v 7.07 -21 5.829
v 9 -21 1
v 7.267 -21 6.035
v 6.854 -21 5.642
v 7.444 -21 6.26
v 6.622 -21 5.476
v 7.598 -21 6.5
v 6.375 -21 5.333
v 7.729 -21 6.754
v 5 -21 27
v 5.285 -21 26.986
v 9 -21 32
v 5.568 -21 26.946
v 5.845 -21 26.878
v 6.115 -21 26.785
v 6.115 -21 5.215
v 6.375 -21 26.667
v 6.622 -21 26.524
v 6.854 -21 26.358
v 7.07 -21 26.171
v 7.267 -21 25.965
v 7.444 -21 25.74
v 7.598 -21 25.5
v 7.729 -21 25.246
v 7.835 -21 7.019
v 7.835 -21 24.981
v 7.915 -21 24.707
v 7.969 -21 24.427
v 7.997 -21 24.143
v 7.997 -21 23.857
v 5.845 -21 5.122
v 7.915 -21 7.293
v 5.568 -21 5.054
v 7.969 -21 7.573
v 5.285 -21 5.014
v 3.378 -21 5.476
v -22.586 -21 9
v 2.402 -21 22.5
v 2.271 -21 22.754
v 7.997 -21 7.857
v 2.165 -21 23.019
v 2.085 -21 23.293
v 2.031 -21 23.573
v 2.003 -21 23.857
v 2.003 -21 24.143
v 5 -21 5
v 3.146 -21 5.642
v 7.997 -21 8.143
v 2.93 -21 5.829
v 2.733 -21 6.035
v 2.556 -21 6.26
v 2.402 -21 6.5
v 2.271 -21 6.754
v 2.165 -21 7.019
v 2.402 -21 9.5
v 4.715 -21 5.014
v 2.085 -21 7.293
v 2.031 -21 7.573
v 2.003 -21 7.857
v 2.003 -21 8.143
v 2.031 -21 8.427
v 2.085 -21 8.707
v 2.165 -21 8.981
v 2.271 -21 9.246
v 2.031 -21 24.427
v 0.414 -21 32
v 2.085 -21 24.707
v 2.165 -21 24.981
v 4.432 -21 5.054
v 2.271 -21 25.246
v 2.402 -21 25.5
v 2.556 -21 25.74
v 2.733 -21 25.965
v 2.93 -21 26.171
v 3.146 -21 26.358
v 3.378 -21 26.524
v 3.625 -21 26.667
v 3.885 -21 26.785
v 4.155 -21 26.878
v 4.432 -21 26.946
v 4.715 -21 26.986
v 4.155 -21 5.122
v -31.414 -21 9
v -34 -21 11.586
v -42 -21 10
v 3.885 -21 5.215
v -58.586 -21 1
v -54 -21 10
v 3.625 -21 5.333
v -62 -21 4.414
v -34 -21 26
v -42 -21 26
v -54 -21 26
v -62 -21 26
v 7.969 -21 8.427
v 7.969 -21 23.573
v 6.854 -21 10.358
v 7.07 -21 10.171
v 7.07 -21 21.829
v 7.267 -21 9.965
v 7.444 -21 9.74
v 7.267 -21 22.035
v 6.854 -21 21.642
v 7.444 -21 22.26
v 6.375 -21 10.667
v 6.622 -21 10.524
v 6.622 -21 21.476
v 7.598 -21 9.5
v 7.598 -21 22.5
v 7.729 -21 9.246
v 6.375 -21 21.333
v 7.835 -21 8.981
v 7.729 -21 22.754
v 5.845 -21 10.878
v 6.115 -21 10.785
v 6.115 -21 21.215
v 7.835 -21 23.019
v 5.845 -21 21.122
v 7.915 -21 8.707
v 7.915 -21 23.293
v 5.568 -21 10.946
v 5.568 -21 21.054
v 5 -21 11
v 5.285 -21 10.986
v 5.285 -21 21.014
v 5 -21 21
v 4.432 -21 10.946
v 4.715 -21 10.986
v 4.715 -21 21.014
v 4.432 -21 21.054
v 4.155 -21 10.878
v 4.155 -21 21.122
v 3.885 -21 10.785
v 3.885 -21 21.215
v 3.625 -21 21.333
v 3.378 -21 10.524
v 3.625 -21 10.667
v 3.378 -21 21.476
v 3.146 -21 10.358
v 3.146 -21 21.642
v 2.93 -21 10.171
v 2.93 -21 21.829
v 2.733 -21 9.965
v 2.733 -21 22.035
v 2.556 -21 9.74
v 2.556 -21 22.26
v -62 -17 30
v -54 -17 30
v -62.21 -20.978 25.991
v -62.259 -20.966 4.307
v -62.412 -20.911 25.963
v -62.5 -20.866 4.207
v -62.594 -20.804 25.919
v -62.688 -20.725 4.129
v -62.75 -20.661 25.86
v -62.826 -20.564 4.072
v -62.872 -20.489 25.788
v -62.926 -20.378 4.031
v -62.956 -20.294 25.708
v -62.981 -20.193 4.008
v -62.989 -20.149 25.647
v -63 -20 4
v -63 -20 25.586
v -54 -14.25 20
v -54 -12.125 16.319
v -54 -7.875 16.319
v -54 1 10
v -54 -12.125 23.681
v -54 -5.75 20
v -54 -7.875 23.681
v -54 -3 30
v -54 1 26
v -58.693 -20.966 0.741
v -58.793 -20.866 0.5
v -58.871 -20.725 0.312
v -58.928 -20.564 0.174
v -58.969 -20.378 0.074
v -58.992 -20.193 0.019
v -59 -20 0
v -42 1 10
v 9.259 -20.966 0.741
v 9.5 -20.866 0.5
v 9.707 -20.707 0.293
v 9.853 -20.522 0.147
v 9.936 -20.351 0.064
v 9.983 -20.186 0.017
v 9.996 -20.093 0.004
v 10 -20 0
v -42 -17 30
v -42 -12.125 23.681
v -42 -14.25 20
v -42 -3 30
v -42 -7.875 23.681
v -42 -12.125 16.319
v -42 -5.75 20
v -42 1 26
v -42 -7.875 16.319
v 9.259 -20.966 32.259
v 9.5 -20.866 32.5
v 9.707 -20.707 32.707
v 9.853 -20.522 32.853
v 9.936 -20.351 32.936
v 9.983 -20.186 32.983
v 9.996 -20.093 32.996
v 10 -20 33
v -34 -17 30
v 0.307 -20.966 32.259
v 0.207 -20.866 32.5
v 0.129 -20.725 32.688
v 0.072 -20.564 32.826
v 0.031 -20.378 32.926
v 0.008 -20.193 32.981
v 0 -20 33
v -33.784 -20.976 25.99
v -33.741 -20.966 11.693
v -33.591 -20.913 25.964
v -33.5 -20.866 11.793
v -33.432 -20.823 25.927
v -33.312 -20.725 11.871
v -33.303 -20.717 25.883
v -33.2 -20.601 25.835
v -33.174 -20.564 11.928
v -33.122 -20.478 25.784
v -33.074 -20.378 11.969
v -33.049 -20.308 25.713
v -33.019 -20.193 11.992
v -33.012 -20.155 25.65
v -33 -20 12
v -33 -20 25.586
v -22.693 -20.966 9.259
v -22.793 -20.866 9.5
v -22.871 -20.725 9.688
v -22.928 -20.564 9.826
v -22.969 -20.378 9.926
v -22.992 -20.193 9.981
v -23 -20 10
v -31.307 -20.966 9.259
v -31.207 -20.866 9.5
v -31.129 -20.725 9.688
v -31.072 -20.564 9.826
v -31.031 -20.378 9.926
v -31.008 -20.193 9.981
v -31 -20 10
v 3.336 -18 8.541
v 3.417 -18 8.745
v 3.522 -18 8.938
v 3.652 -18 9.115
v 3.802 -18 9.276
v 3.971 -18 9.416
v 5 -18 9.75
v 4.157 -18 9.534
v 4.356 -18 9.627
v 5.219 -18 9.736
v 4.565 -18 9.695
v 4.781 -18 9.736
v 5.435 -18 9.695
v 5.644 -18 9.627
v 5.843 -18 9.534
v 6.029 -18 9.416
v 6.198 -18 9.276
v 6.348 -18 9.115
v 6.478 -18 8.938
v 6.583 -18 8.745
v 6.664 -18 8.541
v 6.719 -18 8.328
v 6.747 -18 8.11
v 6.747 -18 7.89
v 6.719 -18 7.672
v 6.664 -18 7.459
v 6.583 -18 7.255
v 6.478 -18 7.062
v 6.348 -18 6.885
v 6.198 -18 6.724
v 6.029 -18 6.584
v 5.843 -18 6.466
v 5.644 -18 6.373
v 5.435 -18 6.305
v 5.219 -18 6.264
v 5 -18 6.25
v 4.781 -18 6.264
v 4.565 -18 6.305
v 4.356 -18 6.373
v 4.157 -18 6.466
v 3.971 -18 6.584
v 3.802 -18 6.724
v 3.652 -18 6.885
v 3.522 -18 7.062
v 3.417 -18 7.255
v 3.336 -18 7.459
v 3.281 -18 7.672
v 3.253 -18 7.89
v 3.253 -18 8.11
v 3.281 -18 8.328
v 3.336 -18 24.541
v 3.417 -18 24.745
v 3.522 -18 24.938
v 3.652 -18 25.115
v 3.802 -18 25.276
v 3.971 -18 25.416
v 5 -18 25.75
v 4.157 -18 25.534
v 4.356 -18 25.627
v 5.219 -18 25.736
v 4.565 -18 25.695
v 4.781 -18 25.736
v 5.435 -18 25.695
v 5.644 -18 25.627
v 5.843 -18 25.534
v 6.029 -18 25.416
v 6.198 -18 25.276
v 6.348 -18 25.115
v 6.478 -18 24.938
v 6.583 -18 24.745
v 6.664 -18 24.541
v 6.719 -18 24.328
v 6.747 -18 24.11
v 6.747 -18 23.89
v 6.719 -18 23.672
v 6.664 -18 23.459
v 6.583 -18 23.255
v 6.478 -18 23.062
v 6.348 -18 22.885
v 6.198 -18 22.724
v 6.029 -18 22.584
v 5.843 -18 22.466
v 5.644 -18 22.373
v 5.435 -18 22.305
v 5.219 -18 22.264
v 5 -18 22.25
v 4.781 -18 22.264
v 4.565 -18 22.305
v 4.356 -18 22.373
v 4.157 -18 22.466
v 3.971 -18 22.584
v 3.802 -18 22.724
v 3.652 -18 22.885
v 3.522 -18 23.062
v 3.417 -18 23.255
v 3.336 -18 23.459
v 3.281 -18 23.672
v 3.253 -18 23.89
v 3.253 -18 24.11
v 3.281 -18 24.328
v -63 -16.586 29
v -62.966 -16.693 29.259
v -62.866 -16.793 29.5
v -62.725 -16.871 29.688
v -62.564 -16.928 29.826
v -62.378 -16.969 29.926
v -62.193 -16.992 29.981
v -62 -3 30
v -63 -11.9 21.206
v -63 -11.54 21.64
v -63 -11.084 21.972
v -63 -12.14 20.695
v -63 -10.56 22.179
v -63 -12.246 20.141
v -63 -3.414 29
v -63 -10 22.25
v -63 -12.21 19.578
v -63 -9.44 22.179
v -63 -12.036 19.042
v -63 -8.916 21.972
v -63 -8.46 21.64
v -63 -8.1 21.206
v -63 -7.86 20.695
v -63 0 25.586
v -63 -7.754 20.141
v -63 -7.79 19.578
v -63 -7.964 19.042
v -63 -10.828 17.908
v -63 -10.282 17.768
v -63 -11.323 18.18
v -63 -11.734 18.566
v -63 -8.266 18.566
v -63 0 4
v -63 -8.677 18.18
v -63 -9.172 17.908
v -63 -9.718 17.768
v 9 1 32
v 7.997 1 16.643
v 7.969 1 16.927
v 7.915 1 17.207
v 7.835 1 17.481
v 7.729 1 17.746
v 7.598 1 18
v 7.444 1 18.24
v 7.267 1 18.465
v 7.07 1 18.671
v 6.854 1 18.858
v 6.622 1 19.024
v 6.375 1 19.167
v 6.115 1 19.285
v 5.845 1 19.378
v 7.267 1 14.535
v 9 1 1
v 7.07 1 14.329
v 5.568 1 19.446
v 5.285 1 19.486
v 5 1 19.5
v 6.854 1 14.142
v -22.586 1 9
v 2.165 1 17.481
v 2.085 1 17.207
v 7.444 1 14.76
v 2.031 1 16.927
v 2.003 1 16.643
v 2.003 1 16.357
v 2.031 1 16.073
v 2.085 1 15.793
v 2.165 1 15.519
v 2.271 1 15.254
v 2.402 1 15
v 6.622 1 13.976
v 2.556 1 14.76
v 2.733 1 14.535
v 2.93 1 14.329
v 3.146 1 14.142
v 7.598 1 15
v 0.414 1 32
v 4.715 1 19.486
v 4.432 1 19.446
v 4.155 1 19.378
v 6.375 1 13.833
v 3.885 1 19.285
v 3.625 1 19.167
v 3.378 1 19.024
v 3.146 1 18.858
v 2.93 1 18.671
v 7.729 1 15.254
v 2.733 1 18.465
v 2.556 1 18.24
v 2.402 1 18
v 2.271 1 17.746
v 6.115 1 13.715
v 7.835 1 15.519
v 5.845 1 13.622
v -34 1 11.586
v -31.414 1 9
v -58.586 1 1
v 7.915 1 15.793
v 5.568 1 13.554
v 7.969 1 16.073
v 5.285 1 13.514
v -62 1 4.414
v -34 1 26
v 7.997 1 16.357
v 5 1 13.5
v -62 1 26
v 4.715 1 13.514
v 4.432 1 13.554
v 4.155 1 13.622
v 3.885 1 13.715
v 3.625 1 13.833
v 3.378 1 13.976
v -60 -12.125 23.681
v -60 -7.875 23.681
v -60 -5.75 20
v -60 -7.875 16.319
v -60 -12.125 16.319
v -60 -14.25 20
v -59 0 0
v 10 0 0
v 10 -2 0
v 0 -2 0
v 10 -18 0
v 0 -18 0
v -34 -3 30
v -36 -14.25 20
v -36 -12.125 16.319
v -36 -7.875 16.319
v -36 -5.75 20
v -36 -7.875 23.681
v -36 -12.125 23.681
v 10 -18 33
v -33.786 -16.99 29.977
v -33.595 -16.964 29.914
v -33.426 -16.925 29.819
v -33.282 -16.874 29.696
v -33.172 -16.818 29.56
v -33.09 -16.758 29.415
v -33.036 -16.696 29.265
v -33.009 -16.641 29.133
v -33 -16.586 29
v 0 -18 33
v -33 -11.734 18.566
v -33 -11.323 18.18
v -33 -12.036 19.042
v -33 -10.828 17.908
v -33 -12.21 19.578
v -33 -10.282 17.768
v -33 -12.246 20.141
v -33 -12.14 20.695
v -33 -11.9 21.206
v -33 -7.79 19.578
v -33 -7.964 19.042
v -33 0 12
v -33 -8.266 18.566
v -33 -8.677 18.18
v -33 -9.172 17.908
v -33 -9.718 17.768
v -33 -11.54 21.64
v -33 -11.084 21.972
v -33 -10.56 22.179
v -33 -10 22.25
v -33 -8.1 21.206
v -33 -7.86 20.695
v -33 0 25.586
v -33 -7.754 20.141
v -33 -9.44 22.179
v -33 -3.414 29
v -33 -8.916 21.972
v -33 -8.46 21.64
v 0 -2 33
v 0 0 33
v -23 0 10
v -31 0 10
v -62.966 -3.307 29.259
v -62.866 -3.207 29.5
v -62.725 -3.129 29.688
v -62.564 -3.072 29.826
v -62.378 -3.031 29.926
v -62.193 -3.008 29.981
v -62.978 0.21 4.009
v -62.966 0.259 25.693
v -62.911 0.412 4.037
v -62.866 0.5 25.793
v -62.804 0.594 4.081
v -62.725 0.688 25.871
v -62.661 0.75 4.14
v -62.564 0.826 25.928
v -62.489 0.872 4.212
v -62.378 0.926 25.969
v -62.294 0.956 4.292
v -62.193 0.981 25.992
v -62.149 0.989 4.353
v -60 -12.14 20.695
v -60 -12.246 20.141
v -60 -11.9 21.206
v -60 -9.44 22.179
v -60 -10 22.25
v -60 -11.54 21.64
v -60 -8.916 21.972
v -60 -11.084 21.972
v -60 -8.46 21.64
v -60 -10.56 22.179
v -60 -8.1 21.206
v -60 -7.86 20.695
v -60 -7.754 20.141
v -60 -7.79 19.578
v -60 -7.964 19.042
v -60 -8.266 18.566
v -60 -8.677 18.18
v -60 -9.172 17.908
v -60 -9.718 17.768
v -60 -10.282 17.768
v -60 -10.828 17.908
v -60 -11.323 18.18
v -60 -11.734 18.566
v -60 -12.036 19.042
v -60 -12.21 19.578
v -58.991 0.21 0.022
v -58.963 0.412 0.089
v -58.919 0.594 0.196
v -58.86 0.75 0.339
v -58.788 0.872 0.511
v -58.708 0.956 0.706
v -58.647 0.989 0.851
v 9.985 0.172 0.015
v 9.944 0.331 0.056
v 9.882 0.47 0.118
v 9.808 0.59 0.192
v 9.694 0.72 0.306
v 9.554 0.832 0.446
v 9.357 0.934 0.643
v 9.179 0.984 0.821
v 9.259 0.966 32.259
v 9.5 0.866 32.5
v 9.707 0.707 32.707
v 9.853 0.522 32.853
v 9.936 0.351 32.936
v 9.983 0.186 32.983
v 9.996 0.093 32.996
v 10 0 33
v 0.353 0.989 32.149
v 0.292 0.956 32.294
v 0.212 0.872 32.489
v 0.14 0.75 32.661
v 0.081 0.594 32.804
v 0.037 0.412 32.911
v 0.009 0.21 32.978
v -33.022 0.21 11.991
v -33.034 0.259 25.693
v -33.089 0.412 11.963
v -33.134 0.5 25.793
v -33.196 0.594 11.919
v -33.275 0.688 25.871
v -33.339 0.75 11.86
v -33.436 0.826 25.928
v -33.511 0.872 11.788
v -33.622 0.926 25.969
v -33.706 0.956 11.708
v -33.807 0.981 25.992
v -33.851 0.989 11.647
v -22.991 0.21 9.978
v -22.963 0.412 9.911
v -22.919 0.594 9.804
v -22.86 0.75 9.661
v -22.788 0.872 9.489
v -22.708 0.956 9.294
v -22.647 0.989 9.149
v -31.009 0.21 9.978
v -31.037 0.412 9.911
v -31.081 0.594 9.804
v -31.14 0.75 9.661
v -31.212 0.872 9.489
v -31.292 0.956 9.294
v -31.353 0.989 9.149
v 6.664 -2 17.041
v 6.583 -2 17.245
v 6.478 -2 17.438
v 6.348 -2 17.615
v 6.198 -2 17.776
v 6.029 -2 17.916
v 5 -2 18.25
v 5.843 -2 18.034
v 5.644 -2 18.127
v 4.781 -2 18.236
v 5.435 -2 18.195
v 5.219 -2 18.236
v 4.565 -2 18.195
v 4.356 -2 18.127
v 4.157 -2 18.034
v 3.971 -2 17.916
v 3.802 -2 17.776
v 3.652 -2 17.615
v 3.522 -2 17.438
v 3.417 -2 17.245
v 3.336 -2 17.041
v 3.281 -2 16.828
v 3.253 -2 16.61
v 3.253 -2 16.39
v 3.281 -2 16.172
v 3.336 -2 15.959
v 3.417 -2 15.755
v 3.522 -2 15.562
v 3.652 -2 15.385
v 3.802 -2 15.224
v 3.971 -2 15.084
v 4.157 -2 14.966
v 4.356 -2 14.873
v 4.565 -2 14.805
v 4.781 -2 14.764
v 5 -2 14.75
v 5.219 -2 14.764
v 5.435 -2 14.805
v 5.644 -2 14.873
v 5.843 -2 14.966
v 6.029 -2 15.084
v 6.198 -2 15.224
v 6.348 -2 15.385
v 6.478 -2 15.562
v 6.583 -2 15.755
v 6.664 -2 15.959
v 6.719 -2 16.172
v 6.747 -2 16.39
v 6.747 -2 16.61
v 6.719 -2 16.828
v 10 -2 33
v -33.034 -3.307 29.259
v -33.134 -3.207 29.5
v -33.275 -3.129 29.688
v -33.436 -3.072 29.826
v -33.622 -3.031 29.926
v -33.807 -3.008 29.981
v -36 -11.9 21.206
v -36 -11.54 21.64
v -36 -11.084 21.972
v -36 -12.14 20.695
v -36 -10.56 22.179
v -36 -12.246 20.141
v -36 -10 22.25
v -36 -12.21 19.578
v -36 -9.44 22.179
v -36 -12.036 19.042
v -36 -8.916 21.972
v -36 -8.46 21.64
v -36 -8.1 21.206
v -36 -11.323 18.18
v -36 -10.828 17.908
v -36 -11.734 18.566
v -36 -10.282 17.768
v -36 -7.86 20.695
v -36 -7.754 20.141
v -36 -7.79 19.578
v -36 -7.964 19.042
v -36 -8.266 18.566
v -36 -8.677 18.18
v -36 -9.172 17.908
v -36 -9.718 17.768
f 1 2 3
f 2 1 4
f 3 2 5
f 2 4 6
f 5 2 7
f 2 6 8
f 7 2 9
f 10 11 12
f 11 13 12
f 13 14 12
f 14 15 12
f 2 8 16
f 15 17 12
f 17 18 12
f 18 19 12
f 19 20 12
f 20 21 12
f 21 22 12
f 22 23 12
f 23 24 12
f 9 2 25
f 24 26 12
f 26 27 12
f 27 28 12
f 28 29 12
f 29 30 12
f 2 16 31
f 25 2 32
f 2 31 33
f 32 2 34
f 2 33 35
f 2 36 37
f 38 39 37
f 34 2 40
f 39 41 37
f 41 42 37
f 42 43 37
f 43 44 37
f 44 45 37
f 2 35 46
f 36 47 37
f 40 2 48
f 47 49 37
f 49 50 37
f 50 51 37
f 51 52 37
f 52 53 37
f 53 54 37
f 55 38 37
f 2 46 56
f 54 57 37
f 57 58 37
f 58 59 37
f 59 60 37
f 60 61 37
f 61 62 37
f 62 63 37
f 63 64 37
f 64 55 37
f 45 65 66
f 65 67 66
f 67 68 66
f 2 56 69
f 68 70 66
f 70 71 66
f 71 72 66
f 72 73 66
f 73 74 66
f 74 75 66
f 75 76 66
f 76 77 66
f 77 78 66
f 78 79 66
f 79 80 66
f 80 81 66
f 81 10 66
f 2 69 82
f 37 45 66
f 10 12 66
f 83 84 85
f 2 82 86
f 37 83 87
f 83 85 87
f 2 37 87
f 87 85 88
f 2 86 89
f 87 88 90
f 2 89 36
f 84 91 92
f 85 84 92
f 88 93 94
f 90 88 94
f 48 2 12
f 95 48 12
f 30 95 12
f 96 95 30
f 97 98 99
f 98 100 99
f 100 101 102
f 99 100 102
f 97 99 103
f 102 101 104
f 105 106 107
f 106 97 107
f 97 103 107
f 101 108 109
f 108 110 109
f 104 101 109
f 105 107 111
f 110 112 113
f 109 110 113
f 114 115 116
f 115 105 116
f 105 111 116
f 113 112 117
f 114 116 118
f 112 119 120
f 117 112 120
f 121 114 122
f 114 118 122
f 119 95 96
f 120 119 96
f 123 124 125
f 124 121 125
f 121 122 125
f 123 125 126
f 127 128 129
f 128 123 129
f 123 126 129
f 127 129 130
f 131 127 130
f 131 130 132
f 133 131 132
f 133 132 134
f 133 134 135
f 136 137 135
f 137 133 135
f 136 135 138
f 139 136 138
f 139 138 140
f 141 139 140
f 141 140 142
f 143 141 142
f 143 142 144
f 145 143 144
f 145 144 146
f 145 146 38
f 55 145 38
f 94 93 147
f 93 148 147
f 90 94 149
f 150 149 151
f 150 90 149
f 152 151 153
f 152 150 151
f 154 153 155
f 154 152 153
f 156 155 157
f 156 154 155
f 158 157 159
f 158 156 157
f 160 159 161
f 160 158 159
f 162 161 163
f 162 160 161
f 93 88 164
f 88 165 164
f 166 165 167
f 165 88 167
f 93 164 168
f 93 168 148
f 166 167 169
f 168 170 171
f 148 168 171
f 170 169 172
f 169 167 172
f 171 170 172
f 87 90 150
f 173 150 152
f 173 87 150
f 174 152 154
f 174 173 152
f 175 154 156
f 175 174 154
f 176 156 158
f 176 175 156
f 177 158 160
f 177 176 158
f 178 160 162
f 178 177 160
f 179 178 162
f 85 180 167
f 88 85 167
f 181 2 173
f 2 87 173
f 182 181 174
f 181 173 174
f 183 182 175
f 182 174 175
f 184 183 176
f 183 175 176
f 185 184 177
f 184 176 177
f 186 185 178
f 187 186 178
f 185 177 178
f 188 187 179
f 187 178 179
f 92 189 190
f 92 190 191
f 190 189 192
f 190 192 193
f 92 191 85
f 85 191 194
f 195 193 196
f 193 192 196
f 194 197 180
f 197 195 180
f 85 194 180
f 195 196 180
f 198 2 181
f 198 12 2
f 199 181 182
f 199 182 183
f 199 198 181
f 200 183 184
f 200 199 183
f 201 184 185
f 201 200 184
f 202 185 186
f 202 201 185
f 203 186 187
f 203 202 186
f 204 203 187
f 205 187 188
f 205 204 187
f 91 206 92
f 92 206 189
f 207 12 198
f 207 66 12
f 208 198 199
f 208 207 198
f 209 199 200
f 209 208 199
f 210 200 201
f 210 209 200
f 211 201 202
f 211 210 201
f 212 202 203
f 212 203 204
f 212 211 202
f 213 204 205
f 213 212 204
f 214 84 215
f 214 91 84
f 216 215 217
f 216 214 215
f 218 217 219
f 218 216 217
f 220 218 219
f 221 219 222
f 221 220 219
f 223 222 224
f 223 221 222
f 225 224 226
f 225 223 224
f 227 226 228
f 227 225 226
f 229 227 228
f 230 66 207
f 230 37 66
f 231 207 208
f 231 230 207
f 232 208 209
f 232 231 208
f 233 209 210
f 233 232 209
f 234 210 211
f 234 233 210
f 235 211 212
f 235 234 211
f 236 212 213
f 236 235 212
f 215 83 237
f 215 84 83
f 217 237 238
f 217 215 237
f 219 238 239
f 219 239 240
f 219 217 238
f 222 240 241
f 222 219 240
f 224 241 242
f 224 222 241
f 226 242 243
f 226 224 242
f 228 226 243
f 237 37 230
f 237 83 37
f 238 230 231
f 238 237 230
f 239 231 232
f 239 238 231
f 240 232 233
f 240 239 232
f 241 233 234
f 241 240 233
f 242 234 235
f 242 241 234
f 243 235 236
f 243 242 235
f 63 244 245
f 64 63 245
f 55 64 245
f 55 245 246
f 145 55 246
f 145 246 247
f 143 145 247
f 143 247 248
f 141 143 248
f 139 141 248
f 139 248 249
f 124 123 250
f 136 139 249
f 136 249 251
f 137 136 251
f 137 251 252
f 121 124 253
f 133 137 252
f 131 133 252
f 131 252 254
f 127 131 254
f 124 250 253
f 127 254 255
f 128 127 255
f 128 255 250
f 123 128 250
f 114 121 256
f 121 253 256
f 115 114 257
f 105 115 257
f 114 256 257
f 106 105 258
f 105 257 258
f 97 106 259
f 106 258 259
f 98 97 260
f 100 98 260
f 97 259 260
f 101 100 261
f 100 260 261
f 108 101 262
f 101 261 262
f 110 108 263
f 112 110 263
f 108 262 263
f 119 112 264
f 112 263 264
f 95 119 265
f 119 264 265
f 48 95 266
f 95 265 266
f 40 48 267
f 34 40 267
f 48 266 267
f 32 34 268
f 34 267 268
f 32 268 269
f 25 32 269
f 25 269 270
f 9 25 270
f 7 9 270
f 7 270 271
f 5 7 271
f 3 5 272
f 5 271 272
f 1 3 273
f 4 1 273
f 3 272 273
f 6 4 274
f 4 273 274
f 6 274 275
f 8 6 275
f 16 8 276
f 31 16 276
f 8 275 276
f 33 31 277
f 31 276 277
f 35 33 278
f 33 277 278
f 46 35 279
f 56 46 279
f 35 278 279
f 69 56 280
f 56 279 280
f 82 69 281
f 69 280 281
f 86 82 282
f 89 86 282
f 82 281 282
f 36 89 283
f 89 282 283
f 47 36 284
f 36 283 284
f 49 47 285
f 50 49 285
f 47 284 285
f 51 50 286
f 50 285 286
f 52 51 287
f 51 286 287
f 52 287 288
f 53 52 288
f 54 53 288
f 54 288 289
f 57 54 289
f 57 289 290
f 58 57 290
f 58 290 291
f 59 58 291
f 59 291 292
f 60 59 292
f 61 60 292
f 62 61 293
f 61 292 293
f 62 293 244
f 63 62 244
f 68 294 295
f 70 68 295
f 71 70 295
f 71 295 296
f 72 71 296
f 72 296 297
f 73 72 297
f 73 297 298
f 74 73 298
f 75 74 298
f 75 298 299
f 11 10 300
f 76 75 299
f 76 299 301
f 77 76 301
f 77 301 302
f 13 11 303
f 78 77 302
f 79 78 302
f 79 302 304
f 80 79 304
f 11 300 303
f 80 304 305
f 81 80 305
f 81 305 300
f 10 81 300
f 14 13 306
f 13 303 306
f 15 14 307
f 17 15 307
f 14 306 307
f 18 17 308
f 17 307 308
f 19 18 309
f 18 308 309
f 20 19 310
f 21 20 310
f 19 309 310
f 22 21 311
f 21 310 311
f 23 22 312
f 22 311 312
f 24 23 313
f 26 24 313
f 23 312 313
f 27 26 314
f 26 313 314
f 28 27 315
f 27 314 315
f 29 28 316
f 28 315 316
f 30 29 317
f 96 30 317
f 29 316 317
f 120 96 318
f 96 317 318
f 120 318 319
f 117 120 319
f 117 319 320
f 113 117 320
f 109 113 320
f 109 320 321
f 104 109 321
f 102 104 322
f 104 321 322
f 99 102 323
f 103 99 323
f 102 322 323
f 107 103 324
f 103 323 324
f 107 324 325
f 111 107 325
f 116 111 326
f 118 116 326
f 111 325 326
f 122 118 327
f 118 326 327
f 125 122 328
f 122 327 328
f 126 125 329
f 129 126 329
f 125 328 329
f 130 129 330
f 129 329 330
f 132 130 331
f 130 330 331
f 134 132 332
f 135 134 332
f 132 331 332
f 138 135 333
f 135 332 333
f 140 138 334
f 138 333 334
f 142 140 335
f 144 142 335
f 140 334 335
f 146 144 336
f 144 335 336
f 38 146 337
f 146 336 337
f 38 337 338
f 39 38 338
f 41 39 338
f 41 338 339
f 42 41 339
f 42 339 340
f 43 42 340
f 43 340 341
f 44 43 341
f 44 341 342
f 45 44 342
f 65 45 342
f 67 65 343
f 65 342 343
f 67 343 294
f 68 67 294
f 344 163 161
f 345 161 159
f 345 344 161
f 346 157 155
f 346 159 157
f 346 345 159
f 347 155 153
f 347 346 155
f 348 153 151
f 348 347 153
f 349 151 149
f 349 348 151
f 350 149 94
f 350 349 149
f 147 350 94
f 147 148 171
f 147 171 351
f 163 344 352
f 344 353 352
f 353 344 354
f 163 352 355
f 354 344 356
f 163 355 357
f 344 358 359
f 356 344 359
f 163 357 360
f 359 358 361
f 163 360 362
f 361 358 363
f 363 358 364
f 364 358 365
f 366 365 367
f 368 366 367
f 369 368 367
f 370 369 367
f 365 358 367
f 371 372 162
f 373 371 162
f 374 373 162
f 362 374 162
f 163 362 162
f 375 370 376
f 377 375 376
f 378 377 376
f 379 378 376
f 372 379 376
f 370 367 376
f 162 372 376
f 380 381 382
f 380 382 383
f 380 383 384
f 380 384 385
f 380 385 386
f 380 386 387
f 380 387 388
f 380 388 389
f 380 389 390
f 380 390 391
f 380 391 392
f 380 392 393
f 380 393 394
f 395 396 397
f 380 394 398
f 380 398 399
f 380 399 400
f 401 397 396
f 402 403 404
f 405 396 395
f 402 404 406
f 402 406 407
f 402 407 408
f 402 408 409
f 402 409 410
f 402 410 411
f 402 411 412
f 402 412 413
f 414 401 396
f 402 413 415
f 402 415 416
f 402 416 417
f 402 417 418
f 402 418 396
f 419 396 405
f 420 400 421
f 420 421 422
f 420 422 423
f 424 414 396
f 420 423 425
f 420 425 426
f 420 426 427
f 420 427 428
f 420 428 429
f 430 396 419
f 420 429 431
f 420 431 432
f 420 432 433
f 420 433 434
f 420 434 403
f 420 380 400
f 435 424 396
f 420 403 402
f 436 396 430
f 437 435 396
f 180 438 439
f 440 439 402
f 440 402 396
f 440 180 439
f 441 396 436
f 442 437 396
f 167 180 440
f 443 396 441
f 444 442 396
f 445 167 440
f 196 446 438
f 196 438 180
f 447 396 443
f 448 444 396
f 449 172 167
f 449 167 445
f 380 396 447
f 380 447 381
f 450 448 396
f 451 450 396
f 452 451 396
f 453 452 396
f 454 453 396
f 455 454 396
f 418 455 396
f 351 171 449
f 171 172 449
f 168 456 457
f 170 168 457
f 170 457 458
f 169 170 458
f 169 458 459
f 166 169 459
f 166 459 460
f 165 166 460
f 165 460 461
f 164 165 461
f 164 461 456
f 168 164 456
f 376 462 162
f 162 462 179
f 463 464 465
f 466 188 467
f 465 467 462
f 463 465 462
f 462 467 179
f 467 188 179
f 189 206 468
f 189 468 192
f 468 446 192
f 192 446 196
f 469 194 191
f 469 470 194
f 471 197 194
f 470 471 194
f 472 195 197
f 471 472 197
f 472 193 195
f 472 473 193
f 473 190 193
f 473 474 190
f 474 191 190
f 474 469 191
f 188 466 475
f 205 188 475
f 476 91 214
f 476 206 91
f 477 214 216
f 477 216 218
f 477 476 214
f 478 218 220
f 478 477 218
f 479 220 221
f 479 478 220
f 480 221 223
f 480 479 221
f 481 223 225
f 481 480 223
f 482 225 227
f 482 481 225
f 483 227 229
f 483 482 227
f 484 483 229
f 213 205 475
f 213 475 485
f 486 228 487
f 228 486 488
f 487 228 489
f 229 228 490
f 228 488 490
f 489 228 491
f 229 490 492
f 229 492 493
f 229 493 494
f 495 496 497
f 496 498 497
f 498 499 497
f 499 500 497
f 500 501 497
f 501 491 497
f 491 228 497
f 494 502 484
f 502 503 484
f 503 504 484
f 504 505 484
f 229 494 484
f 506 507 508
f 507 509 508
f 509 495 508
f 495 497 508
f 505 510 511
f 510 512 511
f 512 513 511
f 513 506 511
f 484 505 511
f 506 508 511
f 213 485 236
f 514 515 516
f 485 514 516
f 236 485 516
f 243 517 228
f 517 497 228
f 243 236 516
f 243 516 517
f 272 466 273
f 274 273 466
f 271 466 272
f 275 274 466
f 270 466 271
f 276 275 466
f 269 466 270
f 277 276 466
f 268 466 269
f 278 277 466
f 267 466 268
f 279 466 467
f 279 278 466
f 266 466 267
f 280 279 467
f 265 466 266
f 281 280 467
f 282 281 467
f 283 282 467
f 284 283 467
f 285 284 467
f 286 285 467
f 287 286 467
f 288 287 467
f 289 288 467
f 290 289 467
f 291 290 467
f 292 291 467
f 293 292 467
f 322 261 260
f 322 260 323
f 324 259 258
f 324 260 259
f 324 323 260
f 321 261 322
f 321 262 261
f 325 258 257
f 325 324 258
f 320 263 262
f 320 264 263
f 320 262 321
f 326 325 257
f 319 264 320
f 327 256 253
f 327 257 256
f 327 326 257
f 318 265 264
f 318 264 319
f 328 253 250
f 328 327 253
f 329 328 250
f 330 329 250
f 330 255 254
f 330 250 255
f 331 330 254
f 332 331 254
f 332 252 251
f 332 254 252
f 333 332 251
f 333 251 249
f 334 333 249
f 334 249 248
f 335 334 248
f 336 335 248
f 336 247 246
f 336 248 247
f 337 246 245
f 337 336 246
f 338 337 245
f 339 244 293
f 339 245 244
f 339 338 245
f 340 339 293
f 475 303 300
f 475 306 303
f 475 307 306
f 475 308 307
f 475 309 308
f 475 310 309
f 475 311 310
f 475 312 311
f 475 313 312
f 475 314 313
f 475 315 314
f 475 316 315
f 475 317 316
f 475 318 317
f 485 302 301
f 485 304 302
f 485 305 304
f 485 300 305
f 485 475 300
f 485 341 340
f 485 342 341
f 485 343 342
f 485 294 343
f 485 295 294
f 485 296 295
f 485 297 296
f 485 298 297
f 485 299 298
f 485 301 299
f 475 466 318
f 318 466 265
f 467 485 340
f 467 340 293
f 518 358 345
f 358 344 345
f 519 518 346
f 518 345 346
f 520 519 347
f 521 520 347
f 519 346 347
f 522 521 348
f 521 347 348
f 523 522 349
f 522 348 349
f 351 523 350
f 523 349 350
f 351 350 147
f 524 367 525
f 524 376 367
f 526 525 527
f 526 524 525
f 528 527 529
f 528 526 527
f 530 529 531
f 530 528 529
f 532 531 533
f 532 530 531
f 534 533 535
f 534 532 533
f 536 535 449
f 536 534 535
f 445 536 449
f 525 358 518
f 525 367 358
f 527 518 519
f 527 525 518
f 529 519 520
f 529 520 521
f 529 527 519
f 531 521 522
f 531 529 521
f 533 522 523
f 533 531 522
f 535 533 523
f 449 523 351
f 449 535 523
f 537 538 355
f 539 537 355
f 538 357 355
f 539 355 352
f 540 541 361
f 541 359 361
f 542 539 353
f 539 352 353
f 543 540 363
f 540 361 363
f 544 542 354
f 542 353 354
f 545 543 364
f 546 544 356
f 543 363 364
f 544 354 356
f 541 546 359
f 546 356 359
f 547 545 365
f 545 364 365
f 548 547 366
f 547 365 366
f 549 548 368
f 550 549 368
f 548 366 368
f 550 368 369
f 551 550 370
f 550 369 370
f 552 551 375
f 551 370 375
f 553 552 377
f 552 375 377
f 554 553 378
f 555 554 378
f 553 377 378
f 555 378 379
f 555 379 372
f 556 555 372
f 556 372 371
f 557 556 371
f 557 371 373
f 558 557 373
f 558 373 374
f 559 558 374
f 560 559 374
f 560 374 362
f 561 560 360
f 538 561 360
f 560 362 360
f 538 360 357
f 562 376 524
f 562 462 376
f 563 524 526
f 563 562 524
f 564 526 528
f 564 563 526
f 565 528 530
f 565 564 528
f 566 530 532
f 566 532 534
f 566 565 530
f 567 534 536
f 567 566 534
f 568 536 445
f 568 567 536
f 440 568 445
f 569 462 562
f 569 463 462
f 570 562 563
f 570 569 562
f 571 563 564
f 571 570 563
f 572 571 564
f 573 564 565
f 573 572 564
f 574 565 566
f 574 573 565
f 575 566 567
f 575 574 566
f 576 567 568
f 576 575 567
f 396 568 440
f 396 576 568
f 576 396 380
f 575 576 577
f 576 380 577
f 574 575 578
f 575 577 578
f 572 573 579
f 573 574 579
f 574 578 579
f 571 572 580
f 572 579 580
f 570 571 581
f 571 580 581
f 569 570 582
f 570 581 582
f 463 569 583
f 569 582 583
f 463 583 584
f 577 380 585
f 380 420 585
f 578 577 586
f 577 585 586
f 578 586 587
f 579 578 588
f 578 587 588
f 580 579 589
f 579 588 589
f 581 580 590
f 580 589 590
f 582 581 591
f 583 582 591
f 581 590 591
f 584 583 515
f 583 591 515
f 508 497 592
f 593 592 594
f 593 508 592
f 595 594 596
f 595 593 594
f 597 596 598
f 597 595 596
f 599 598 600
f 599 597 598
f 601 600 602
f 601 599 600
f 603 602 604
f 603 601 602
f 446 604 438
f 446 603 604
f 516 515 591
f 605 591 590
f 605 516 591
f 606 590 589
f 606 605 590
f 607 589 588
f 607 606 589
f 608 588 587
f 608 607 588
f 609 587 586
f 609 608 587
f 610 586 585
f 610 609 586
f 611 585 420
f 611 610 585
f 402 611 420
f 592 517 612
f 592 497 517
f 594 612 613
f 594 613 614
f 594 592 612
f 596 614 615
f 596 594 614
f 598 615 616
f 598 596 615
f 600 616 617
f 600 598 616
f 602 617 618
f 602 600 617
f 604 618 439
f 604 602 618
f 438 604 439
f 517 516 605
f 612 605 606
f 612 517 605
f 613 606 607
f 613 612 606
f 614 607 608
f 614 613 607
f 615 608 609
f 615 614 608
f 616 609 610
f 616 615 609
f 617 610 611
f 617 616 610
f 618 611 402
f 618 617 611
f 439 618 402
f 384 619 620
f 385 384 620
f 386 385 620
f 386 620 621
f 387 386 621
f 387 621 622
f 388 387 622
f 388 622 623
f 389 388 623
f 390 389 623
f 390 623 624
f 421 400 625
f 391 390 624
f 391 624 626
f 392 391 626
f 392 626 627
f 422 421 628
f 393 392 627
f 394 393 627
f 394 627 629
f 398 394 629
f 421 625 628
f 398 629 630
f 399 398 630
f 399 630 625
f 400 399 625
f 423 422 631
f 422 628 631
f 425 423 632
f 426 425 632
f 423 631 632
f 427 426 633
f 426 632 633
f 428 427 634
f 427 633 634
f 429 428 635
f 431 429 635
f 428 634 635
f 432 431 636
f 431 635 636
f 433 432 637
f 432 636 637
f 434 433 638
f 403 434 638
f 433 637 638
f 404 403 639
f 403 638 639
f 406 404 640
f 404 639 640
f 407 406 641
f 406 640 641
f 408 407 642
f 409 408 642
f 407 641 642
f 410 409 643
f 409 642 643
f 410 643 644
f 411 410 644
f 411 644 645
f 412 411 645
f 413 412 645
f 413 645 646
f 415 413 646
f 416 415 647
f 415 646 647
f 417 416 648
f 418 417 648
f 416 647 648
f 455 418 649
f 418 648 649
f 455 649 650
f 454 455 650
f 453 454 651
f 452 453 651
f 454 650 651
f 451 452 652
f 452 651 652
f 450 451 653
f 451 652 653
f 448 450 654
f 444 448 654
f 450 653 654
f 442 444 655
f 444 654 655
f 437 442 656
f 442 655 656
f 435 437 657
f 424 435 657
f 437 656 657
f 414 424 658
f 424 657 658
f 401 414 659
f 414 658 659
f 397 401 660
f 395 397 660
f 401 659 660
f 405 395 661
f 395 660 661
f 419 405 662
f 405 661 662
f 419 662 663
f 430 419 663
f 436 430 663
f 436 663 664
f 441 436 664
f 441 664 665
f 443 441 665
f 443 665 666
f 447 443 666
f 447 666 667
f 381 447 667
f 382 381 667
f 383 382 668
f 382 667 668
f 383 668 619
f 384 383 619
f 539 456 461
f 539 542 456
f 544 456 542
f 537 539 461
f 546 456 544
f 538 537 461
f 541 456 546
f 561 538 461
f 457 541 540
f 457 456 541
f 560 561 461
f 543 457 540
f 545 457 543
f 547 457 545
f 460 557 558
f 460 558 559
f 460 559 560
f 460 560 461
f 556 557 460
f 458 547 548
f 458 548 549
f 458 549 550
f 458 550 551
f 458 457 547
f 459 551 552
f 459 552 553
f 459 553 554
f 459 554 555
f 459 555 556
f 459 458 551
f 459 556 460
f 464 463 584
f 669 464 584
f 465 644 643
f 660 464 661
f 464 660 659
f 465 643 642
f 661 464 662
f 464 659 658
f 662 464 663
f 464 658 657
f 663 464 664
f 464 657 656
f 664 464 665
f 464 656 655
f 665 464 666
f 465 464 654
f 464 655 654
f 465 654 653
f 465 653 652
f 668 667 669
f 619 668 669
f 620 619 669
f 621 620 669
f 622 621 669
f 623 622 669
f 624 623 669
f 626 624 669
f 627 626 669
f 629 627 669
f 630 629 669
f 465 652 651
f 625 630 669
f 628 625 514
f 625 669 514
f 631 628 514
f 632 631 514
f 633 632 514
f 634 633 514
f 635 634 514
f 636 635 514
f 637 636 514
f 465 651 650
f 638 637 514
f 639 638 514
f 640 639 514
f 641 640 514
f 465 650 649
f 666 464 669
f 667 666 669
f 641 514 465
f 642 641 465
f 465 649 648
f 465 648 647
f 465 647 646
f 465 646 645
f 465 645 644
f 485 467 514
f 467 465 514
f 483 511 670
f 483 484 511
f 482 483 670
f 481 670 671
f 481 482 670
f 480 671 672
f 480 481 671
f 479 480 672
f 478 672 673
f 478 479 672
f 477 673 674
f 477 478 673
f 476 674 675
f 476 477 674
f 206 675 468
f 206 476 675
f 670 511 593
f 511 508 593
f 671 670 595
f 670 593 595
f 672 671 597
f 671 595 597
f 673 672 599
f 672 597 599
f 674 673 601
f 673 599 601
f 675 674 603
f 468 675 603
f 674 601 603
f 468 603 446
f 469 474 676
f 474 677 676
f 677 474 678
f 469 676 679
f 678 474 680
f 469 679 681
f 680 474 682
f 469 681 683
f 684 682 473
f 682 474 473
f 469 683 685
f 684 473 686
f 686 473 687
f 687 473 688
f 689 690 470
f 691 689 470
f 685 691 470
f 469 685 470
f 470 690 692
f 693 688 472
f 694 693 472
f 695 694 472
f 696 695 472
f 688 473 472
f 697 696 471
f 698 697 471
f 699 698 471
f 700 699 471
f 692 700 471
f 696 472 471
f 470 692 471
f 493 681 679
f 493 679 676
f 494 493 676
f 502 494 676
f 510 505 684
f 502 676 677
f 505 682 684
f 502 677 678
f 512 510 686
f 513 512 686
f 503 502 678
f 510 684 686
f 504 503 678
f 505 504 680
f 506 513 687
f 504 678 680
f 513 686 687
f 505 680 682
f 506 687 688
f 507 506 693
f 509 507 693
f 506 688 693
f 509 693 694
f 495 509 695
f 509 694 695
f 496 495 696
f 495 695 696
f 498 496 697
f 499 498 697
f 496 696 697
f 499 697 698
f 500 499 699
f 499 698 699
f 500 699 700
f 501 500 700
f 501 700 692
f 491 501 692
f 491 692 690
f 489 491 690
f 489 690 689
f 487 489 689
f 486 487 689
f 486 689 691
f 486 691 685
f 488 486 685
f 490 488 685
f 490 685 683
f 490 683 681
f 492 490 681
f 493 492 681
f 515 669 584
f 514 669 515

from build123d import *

# Parameters (mm, degrees)
CONE002_ROLL_ANGLE = -90
CONE001_ROLL_ANGLE = -90
CONE_ROLL_ANGLE    = 90
BOX_W              = 33
BOX_H              = 3
BOX_DEPTH          = 10
BOX001_W           = 33
BOX001_H           = 3
BOX001_DEPTH       = 10
CYLINDER_R         = 2.25
CYLINDER_DEPTH     = 30
PAD001_DEPTH       = 24
PAD_DEPTH          = 22
CHAMFER_SIZE       = 2
CHAMFER001_SIZE    = 4
CHAMFER002_SIZE    = 4
FILLET_R           = 1
FILLET_PITCH_ANGLE = -90


with BuildPart() as cone002:
    # Cone002 → Cone002 (revolve)
    with BuildSketch(Plane.XZ):
        Polygon((0, 0), (3, 0), (1.75, 3), (0, 3), align=None)
    revolve(axis=Axis((0, 0, 0), (0, 0, 1)))


with BuildPart() as cone002_1:
    # Cone002 roll: moved
    add(cone002.part.rotate(Axis((0, 0, 0), (1, 0, 0)), CONE002_ROLL_ANGLE))


with BuildPart() as cone002_2:
    # Cone002 placement: moved
    add(cone002_1.part.moved(Location((24, -21, -5))))


with BuildPart() as cone001:
    # Cone001 → Cone001 (revolve)
    with BuildSketch(Plane.XZ):
        Polygon((0, 0), (3, 0), (1.75, 3), (0, 3), align=None)
    revolve(axis=Axis((0, 0, 0), (0, 0, 1)))


with BuildPart() as cone001_1:
    # Cone001 roll: moved
    add(cone001.part.rotate(Axis((0, 0, 0), (1, 0, 0)), CONE001_ROLL_ANGLE))


with BuildPart() as cone001_2:
    # Cone001 placement: moved
    add(cone001_1.part.moved(Location((8, -21, -5))))


with BuildPart() as cone:
    # Cone → Cone (revolve)
    with BuildSketch(Plane.XZ):
        Polygon((0, 0), (3, 0), (1.75, 3), (0, 3), align=None)
    revolve(axis=Axis((0, 0, 0), (0, 0, 1)))


with BuildPart() as cone_1:
    # Cone roll: moved
    add(cone.part.rotate(Axis((0, 0, 0), (1, 0, 0)), CONE_ROLL_ANGLE))


with BuildPart() as cone_2:
    # Cone placement: moved
    add(cone_1.part.moved(Location((16.5, 1, -5))))


with BuildPart() as box:
    # Box → Box (new body)
    with BuildSketch(Plane(origin=(0, -2, -10), x_dir=(1, 0, 0), z_dir=(0, 0, 1))):
        with Locations((16.5, 1.5)):
            Rectangle(BOX_W, BOX_H)
    extrude(amount=BOX_DEPTH)


with BuildPart() as box001:
    # Box001 → Box001 (new body)
    with BuildSketch(Plane(origin=(0, -21, -10), x_dir=(1, 0, 0), z_dir=(0, 0, 1))):
        with Locations((16.5, 1.5)):
            Rectangle(BOX001_W, BOX001_H)
    extrude(amount=BOX001_DEPTH)


with BuildPart() as varilla_m4:
    # Cylinder → Cylinder (new body)
    with BuildSketch(Plane(origin=(20, -10, 33), x_dir=(1, 0, 0), z_dir=(0, 0, 1))):
        Circle(CYLINDER_R)
    extrude(amount=CYLINDER_DEPTH)


with BuildPart() as espai_hex_m4:
    # Sketch001 → Pad001 (new body)
    with BuildSketch(Plane(origin=(20, -10, 36), x_dir=(1, 0, 0), z_dir=(0, 0, 1))):
        Polygon((3.680608, -2.125), (3.680608, 2.125), (0, 4.25), (-3.680608, 2.125), (-3.680608, -2.125), (0, -4.25), align=None)
    extrude(amount=PAD001_DEPTH)


with BuildPart() as bed_holder_cnc:
    # Sketch → Pad (new body)
    with BuildSketch(Plane.XZ.offset(-1)):
        Polygon((0, 0), (33, 0), (10, 23), (10, 33), (30, 33), (30, 42), (10, 42), (10, 54), (30, 54), (30, 63), (0, 63), align=None)
    extrude(amount=PAD_DEPTH)

    # Cut: cut espai-hex-M4
    add(espai_hex_m4.part, mode=Mode.SUBTRACT)

    # Cut001: cut varilla-M4
    add(varilla_m4.part, mode=Mode.SUBTRACT)

    # Fusion: union Box, Box001
    add(box.part)
    add(box001.part)

    # Cut002: cut Cone
    add(cone_2.part, mode=Mode.SUBTRACT)

    # Cut003: cut Cone001
    add(cone001_2.part, mode=Mode.SUBTRACT)

    # Cut004: cut Cone002
    add(cone002_2.part, mode=Mode.SUBTRACT)

    # Chamfer
    chamfer_edges = [bed_holder_cnc.edges().sort_by_distance(p)[0] for p in [
        (10, -10, 33),
    ]]
    chamfer(chamfer_edges, length=CHAMFER_SIZE)

    # Chamfer001
    chamfer001_edges = [bed_holder_cnc.edges().sort_by_distance(p)[0] for p in [
        (30, -21, 37.5),
        (30, -21, 58.5),
        (30, 1, 37.5),
        (30, 1, 58.5),
    ]]
    chamfer(chamfer001_edges, length=CHAMFER001_SIZE)

    # Chamfer002
    chamfer002_edges = [bed_holder_cnc.edges().sort_by_distance(p)[0] for p in [
        (0, -10, 63),
    ]]
    chamfer(chamfer002_edges, length=CHAMFER002_SIZE)

    # Fillet
    fillet_edges = [bed_holder_cnc.edges().sort_by_distance(p)[0] for p in [
        (15, -21, 63),
        (2, -21, 61),
        (0, -21, 24.5),
        (16.5, -21, -10),
        (33, -21, -5),
        (21.5, -21, 11.5),
        (10, -21, 27),
        (19, -21, 33),
        (11, -21, 32),
        (15, 1, 63),
        (28, -1, 63),
        (30, -10, 63),
        (28, -19, 63),
        (2, 1, 61),
        (0, 1, 24.5),
        (21.5, 1, 11.5),
        (28, -19, 33),
        (10, 1, 27),
        (19, 1, 33),
        (28, -1, 33),
        (30, -10, 33),
        (11, 1, 32),
        (16.5, 1, -10),
        (33, 1, -5),
    ]]
    fillet(fillet_edges, radius=FILLET_R)


with BuildPart() as bed_holder_cnc_1:
    # Fillet pitch: moved
    add(bed_holder_cnc.part.rotate(Axis((0, 0, 0), (0, 1, 0)), FILLET_PITCH_ANGLE))


with BuildPart() as bed_holder_cnc_2:
    # Fillet placement: moved
    add(bed_holder_cnc_1.part)


solid = bed_holder_cnc_2.part
